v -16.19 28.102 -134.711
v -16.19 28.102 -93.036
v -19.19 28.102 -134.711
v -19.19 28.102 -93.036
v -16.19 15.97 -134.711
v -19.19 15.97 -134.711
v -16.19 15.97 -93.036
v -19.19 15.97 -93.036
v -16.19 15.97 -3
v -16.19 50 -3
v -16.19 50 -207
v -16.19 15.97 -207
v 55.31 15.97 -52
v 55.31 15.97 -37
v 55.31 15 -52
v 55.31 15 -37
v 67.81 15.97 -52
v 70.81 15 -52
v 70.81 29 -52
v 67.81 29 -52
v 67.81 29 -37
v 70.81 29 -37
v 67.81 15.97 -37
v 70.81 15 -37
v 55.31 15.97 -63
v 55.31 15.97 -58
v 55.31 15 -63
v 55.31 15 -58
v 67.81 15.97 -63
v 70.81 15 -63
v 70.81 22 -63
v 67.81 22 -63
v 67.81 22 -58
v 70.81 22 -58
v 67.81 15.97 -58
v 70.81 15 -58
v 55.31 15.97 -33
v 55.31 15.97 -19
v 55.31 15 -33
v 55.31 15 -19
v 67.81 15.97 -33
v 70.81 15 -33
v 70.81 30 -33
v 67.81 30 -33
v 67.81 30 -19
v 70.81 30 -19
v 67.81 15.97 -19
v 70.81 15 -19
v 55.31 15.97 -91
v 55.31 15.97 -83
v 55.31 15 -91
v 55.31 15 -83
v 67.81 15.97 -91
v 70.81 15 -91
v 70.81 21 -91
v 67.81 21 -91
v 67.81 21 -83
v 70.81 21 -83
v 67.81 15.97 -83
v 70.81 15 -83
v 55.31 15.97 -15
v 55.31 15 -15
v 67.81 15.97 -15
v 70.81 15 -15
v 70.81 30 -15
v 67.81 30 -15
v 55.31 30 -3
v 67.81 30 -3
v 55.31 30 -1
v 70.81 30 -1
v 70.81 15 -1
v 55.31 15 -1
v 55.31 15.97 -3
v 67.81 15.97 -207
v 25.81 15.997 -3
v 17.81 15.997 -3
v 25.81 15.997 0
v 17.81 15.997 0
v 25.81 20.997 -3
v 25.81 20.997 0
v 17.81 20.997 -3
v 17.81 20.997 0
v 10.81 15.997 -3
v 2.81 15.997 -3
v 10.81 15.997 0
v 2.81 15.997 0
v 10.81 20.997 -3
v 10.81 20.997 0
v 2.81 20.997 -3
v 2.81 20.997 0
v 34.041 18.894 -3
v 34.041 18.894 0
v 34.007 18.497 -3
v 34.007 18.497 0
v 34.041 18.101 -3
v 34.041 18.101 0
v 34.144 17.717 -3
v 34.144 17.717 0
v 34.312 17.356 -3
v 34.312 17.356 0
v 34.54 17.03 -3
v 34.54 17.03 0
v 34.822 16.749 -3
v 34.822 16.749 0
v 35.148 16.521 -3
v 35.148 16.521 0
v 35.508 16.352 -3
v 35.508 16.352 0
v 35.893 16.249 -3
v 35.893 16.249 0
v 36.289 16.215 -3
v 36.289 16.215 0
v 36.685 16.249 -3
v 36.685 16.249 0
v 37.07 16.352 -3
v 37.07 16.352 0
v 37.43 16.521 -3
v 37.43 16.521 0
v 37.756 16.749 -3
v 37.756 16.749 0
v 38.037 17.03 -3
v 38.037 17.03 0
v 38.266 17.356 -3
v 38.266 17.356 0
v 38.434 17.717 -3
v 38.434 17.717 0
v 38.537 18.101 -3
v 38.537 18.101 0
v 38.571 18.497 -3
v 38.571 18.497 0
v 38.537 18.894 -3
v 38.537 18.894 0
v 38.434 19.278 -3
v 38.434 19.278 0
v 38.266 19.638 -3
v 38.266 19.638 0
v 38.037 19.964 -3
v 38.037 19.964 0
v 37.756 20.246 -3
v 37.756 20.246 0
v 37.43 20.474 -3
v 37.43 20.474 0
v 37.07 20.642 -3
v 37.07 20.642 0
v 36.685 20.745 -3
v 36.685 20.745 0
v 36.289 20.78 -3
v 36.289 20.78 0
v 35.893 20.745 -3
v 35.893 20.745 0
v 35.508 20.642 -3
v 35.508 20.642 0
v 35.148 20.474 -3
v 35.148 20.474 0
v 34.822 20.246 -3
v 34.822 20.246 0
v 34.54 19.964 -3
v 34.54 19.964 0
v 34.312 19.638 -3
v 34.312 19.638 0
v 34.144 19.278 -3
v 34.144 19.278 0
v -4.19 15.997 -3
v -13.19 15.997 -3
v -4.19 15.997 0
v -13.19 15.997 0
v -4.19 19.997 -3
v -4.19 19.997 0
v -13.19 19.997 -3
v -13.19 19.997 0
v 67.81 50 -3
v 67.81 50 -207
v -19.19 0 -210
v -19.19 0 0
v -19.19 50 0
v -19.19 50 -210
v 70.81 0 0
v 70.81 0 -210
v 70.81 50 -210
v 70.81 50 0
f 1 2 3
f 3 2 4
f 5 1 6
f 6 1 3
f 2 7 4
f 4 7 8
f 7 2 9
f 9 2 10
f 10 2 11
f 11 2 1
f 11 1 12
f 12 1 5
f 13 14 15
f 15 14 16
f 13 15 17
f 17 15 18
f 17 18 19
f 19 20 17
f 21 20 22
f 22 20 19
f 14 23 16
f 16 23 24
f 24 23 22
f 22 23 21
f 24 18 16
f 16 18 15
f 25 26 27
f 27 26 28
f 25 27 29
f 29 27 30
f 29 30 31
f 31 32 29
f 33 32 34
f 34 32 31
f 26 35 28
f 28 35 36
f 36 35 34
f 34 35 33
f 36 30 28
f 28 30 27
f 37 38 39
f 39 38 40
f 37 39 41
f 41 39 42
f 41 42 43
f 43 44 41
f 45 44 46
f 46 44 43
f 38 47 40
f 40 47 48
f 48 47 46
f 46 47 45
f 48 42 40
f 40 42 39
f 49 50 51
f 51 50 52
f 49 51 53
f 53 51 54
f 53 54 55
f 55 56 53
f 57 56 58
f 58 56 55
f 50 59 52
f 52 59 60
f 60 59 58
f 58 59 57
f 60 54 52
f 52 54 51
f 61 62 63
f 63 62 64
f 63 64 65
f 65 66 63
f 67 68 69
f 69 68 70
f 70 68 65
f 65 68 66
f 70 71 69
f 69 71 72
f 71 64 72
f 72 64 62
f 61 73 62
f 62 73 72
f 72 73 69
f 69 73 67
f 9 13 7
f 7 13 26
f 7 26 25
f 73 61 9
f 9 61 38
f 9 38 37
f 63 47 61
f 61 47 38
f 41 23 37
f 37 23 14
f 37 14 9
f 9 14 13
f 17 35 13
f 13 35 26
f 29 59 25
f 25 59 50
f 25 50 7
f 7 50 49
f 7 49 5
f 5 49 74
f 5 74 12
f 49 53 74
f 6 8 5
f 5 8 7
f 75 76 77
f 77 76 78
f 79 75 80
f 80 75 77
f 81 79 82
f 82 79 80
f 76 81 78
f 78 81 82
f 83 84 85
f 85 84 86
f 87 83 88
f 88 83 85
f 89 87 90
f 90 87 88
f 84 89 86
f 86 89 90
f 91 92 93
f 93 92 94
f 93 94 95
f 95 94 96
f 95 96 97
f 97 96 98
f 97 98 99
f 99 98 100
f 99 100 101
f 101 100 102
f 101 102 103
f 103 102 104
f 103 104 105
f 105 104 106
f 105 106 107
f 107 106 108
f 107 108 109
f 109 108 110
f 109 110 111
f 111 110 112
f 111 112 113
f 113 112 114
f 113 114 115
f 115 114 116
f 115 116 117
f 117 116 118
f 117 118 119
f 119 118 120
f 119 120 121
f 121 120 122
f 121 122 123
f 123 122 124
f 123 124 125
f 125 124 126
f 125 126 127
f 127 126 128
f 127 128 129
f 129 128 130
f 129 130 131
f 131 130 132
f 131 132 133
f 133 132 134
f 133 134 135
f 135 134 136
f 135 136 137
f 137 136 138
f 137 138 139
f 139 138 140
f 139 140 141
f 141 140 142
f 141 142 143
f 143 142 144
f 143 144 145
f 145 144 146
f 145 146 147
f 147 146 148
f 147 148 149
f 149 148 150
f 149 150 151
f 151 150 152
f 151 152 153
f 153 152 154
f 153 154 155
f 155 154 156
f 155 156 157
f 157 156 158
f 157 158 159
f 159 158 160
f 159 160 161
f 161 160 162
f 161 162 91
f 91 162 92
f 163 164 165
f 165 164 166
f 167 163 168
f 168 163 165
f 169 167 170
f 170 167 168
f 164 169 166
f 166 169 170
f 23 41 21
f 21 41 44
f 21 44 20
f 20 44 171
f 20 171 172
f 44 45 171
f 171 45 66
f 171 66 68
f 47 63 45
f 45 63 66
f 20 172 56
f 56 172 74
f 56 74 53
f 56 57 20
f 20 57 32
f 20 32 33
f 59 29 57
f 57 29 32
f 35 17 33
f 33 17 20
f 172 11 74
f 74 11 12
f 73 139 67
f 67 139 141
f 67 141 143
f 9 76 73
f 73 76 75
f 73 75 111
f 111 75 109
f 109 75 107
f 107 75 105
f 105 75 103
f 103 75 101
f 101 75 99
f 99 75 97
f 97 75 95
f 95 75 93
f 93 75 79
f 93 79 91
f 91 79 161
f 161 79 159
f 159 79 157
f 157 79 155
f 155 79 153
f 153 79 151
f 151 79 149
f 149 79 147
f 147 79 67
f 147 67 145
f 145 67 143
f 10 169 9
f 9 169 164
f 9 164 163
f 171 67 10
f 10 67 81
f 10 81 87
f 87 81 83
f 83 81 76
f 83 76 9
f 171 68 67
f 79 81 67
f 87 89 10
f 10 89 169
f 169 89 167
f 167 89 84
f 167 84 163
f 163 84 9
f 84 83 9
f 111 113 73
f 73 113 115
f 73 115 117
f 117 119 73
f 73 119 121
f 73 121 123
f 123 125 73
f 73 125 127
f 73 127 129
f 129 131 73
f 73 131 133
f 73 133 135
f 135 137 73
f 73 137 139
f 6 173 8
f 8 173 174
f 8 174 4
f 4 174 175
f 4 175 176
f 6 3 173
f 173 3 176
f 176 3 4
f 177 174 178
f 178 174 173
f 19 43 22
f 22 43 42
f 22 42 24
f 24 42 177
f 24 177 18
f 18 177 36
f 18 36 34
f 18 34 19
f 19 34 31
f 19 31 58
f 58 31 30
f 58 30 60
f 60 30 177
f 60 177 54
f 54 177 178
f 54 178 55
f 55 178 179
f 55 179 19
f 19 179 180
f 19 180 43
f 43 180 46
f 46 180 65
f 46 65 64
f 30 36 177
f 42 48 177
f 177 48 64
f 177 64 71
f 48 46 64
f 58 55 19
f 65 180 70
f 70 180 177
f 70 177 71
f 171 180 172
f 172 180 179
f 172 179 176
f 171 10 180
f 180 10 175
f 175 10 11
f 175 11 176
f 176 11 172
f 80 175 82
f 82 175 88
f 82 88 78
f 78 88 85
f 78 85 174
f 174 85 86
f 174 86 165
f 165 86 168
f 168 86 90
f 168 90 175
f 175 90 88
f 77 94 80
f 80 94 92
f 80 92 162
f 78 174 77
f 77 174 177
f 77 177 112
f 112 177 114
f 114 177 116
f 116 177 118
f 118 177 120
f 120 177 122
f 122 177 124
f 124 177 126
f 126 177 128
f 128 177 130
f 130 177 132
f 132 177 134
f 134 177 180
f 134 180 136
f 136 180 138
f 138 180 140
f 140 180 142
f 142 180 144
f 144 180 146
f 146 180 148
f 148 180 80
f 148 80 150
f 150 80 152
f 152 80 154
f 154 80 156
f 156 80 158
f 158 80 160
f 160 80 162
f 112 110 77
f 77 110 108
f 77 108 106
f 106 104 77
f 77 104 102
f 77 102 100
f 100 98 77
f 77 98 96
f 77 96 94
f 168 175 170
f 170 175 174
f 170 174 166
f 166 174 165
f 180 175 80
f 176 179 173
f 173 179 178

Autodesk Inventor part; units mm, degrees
ref_plane "YZ Plane" through (0, 0, 0) normal (1, 0, 0) x (0, 1, 0)
ref_plane "XZ Plane" through (0, 0, 0) normal (0, 1, 0) x (-1, 0, 0)
ref_plane "XY Plane" through (0, 0, 0) normal (0, 0, 1) x (1, 0, 0)
sketch "Sketch1" plane through (0, 0, 0) normal (0, 0, 1) x (1, 0, 0)
  point P0 (0, 0)
sketch "Sketch2" plane through (0, 0, 0) normal (0, 0, 1) x (1, 0, 0)
  line L0 (20.0728, 0) -> (-15.1545, 0)
  line L1 (-19.19, 0) -> (-19.19, 50)
  line L2 (-19.19, 50) -> (70.81, 50)
  line L3 (70.81, 50) -> (70.81, 0)
  line L4 (70.81, 0) -> (-19.19, 0)
  line L5 (-19.19, 0) -> (-13.19, 0)
  line L6 (-13.19, 0) -> (-13.19, 15)
  point P0 (0, 0)
  dimension "d0" = 50
  dimension "d1" = 90
  dimension "d2" = 15
  dimension "d5" = 6
sketch "Sketch3" plane through (0, 0, 0) normal (0, 0, 1) x (1, 0, 0)
  line L0 (-13.1902, 15.9972) -> (-4.1902, 15.9972)
  line L1 (-4.1902, 15.9972) -> (-4.1902, 19.9972)
  line L2 (-4.1902, 19.9972) -> (-13.1902, 19.9972)
  line L3 (-13.1902, 19.9972) -> (-13.1902, 15.9972)
  line L4 (2.8098, 15.9972) -> (2.8098, 20.9972)
  line L5 (2.8098, 20.9972) -> (10.8098, 20.9972)
  line L6 (10.8098, 20.9972) -> (10.8098, 15.9972)
  line L7 (10.8098, 15.9972) -> (2.8098, 15.9972)
  line L8 (2.8098, 15.9972) -> (2.8098, 20.9972)
  line L9 (2.8098, 20.9972) -> (10.8098, 20.9972)
  line L10 (10.8098, 20.9972) -> (10.8098, 15.9972)
  line L11 (10.8098, 15.9972) -> (2.8098, 15.9972)
  line L12 (17.8096, 15.9972) -> (17.8096, 20.9972)
  line L13 (17.8096, 20.9972) -> (25.8096, 20.9972)
  line L14 (25.8096, 20.9972) -> (25.8096, 15.9972)
  line L15 (25.8096, 15.9972) -> (17.8096, 15.9972)
  line L16 (17.8096, 15.9972) -> (17.8096, 20.9972)
  line L17 (17.8096, 20.9972) -> (25.8096, 20.9972)
  line L18 (25.8096, 20.9972) -> (25.8096, 15.9972)
  line L19 (25.8096, 15.9972) -> (17.8096, 15.9972)
  circle A0 centre (36.289, 18.4972) radius 2.2825
  point P0 (0, 0)
  dimension "d7" = 9
  dimension "d8" = 4
  dimension "d9" = 9
  dimension "d11" = 5
  dimension "d12" = 8
  dimension "d13" = 5
  dimension "d14" = 8
  dimension "d16" = 7
  dimension "d18" = 5
  dimension "d19" = 8
  dimension "d20" = 5
  dimension "d21" = 8
  dimension "d22" = 5
  dimension "d23" = 8
  dimension "d24" = 5
  dimension "d25" = 8
  dimension "d27" = 5
  dimension "d28" = 8
  dimension "d29" = 5
  dimension "d30" = 8
sketch "Sketch4" plane through (0, 0, 0) normal (1, 0, 0) x (0, 1, 0)
  point P0 (0, 0)
sketch "Sketch5" plane through (0, 0, 0) normal (1, 0, 0) x (0, 1, 0)
  point P0 (0, 0)
sketch "Sketch6" plane through (0, 0, 0) normal (1, 0, 0) x (0, 1, 0)
  point P0 (0, 0)
extrude "Extrusion2" add sketch "Sketch2" against normal blind 210
sketch "Sketch7" plane through (70.81, 0, 0) normal (1, 0, 0) x (0, 0, -1)
  point P0 (0, 0)
sketch "Sketch8" plane through (-19.19, 50, 0) normal (0, 1, 0) x (1, 0, 0)
  point P0 (19.19, 0)
sketch "Sketch9" plane through (-19.19, 50, 0) normal (0, 1, 0) x (1, 0, 0)
  line L0 (0, 210) -> (90, 210) projected
  line L1 (0, 210) -> (3, 210)
  line L2 (3, 210) -> (0, 210)
  line L3 (90, 210) -> (87, 210)
  line L4 (90, 0) -> (0, 0) projected
  line L5 (90, 0) -> (90, 210) projected
  line L6 (90, 3) -> (90, 0)
  line L7 (0, 0) -> (0, 3)
  line L8 (0, 0) -> (0, 210) projected
  line L9 (3, 207) -> (87, 207)
  line L10 (87, 207) -> (87, 3)
  line L11 (87, 3) -> (3, 3)
  line L12 (3, 3) -> (3, 207)
  point P0 (19.19, 0)
  dimension "d39" = 3
  dimension "d40" = 3
extrude "Extrusion3" cut sketch "Sketch9" against normal blind 34.03 contours L9 L10 L11 L12
extrude "Extrusion4" cut sketch "Sketch3" against normal blind 33.25
sketch "Sketch10" plane through (0, 0, 0) normal (0, 0, 1) x (1, 0, 0)
  point P0 (0, 0)
sketch "Sketch11" plane through (0, 0, 0) normal (0, 0, 1) x (1, 0, 0)
  point P0 (0, 0)
sketch "Sketch12" plane through (67.81, 50, -3) normal (0, 0, -1) x (-1, 0, 0)
  point P0 (67.81, -50)
sketch "Sketch13" plane through (67.81, 50, -3) normal (0, 0, -1) x (-1, 0, 0)
  point P0 (67.81, -50)
sketch "Sketch14" plane through (0, 0, 0) normal (0, 0, 1) x (1, 0, 0)
  point P0 (0, 0)
sketch "Sketch15" plane through (70.81, 0, 0) normal (1, 0, 0) x (0, 0, -1)
  line L0 (0, 0) -> (0, 15)
  line L1 (0, 0) -> (0, 50) projected
  line L2 (0, 15) -> (1, 15)
  line L3 (1, 15) -> (15, 15)
  line L4 (15, 15) -> (15, 30)
  line L5 (15, 30) -> (1, 30)
  line L6 (1, 30) -> (1, 15)
  line L7 (15, 15) -> (19, 15)
  line L8 (19, 15) -> (33, 15)
  line L9 (33, 15) -> (33, 30)
  line L10 (33, 30) -> (19, 30)
  line L11 (19, 30) -> (19, 15)
  line L12 (33, 15) -> (37, 15)
  line L13 (37, 15) -> (52, 15)
  line L14 (52, 15) -> (52, 29)
  line L15 (52, 29) -> (37, 29)
  line L16 (37, 29) -> (37, 15)
  line L17 (52, 15) -> (58, 15)
  line L18 (58, 15) -> (63, 15)
  line L19 (63, 15) -> (63, 22)
  line L20 (63, 22) -> (58, 22)
  line L21 (58, 22) -> (58, 15)
  line L22 (63, 15) -> (83, 15)
  line L23 (83, 15) -> (91, 15)
  line L24 (91, 15) -> (91, 21)
  line L25 (91, 21) -> (83, 21)
  line L26 (83, 21) -> (83, 15)
  dimension "d53" = 15
  dimension "d54" = 1
  dimension "d55" = 14
  dimension "d56" = 15
  dimension "d57" = 4
  dimension "d58" = 14
  dimension "d59" = 15
  dimension "d60" = 4
  dimension "d61" = 15
  dimension "d62" = 14
  dimension "d63" = 6
  dimension "d64" = 5
  dimension "d65" = 7
  dimension "d66" = 20
  dimension "d67" = 8
  dimension "d68" = 6
extrude "Extrusion5" cut sketch "Sketch15" against normal blind 15.5
sketch "Sketch16" plane through (-19.19, 0, 0) normal (-1, 0, 0) x (0, 0, 1)
  line L0 (-3, 15.97) -> (-207, 15.97) projected
  line L1 (-134.7114, 15.97) -> (-93.0359, 15.97)
  line L2 (-93.0359, 15.97) -> (-93.0359, 28.1023)
  line L3 (-93.0359, 28.1023) -> (-134.7114, 28.1023)
  line L4 (-134.7114, 28.1023) -> (-134.7114, 15.97)
  point P0 (0, 0)
extrude "Extrusion6" cut sketch "Sketch16" against normal blind 14.25
properties part number "BOX_SAMPAH"
